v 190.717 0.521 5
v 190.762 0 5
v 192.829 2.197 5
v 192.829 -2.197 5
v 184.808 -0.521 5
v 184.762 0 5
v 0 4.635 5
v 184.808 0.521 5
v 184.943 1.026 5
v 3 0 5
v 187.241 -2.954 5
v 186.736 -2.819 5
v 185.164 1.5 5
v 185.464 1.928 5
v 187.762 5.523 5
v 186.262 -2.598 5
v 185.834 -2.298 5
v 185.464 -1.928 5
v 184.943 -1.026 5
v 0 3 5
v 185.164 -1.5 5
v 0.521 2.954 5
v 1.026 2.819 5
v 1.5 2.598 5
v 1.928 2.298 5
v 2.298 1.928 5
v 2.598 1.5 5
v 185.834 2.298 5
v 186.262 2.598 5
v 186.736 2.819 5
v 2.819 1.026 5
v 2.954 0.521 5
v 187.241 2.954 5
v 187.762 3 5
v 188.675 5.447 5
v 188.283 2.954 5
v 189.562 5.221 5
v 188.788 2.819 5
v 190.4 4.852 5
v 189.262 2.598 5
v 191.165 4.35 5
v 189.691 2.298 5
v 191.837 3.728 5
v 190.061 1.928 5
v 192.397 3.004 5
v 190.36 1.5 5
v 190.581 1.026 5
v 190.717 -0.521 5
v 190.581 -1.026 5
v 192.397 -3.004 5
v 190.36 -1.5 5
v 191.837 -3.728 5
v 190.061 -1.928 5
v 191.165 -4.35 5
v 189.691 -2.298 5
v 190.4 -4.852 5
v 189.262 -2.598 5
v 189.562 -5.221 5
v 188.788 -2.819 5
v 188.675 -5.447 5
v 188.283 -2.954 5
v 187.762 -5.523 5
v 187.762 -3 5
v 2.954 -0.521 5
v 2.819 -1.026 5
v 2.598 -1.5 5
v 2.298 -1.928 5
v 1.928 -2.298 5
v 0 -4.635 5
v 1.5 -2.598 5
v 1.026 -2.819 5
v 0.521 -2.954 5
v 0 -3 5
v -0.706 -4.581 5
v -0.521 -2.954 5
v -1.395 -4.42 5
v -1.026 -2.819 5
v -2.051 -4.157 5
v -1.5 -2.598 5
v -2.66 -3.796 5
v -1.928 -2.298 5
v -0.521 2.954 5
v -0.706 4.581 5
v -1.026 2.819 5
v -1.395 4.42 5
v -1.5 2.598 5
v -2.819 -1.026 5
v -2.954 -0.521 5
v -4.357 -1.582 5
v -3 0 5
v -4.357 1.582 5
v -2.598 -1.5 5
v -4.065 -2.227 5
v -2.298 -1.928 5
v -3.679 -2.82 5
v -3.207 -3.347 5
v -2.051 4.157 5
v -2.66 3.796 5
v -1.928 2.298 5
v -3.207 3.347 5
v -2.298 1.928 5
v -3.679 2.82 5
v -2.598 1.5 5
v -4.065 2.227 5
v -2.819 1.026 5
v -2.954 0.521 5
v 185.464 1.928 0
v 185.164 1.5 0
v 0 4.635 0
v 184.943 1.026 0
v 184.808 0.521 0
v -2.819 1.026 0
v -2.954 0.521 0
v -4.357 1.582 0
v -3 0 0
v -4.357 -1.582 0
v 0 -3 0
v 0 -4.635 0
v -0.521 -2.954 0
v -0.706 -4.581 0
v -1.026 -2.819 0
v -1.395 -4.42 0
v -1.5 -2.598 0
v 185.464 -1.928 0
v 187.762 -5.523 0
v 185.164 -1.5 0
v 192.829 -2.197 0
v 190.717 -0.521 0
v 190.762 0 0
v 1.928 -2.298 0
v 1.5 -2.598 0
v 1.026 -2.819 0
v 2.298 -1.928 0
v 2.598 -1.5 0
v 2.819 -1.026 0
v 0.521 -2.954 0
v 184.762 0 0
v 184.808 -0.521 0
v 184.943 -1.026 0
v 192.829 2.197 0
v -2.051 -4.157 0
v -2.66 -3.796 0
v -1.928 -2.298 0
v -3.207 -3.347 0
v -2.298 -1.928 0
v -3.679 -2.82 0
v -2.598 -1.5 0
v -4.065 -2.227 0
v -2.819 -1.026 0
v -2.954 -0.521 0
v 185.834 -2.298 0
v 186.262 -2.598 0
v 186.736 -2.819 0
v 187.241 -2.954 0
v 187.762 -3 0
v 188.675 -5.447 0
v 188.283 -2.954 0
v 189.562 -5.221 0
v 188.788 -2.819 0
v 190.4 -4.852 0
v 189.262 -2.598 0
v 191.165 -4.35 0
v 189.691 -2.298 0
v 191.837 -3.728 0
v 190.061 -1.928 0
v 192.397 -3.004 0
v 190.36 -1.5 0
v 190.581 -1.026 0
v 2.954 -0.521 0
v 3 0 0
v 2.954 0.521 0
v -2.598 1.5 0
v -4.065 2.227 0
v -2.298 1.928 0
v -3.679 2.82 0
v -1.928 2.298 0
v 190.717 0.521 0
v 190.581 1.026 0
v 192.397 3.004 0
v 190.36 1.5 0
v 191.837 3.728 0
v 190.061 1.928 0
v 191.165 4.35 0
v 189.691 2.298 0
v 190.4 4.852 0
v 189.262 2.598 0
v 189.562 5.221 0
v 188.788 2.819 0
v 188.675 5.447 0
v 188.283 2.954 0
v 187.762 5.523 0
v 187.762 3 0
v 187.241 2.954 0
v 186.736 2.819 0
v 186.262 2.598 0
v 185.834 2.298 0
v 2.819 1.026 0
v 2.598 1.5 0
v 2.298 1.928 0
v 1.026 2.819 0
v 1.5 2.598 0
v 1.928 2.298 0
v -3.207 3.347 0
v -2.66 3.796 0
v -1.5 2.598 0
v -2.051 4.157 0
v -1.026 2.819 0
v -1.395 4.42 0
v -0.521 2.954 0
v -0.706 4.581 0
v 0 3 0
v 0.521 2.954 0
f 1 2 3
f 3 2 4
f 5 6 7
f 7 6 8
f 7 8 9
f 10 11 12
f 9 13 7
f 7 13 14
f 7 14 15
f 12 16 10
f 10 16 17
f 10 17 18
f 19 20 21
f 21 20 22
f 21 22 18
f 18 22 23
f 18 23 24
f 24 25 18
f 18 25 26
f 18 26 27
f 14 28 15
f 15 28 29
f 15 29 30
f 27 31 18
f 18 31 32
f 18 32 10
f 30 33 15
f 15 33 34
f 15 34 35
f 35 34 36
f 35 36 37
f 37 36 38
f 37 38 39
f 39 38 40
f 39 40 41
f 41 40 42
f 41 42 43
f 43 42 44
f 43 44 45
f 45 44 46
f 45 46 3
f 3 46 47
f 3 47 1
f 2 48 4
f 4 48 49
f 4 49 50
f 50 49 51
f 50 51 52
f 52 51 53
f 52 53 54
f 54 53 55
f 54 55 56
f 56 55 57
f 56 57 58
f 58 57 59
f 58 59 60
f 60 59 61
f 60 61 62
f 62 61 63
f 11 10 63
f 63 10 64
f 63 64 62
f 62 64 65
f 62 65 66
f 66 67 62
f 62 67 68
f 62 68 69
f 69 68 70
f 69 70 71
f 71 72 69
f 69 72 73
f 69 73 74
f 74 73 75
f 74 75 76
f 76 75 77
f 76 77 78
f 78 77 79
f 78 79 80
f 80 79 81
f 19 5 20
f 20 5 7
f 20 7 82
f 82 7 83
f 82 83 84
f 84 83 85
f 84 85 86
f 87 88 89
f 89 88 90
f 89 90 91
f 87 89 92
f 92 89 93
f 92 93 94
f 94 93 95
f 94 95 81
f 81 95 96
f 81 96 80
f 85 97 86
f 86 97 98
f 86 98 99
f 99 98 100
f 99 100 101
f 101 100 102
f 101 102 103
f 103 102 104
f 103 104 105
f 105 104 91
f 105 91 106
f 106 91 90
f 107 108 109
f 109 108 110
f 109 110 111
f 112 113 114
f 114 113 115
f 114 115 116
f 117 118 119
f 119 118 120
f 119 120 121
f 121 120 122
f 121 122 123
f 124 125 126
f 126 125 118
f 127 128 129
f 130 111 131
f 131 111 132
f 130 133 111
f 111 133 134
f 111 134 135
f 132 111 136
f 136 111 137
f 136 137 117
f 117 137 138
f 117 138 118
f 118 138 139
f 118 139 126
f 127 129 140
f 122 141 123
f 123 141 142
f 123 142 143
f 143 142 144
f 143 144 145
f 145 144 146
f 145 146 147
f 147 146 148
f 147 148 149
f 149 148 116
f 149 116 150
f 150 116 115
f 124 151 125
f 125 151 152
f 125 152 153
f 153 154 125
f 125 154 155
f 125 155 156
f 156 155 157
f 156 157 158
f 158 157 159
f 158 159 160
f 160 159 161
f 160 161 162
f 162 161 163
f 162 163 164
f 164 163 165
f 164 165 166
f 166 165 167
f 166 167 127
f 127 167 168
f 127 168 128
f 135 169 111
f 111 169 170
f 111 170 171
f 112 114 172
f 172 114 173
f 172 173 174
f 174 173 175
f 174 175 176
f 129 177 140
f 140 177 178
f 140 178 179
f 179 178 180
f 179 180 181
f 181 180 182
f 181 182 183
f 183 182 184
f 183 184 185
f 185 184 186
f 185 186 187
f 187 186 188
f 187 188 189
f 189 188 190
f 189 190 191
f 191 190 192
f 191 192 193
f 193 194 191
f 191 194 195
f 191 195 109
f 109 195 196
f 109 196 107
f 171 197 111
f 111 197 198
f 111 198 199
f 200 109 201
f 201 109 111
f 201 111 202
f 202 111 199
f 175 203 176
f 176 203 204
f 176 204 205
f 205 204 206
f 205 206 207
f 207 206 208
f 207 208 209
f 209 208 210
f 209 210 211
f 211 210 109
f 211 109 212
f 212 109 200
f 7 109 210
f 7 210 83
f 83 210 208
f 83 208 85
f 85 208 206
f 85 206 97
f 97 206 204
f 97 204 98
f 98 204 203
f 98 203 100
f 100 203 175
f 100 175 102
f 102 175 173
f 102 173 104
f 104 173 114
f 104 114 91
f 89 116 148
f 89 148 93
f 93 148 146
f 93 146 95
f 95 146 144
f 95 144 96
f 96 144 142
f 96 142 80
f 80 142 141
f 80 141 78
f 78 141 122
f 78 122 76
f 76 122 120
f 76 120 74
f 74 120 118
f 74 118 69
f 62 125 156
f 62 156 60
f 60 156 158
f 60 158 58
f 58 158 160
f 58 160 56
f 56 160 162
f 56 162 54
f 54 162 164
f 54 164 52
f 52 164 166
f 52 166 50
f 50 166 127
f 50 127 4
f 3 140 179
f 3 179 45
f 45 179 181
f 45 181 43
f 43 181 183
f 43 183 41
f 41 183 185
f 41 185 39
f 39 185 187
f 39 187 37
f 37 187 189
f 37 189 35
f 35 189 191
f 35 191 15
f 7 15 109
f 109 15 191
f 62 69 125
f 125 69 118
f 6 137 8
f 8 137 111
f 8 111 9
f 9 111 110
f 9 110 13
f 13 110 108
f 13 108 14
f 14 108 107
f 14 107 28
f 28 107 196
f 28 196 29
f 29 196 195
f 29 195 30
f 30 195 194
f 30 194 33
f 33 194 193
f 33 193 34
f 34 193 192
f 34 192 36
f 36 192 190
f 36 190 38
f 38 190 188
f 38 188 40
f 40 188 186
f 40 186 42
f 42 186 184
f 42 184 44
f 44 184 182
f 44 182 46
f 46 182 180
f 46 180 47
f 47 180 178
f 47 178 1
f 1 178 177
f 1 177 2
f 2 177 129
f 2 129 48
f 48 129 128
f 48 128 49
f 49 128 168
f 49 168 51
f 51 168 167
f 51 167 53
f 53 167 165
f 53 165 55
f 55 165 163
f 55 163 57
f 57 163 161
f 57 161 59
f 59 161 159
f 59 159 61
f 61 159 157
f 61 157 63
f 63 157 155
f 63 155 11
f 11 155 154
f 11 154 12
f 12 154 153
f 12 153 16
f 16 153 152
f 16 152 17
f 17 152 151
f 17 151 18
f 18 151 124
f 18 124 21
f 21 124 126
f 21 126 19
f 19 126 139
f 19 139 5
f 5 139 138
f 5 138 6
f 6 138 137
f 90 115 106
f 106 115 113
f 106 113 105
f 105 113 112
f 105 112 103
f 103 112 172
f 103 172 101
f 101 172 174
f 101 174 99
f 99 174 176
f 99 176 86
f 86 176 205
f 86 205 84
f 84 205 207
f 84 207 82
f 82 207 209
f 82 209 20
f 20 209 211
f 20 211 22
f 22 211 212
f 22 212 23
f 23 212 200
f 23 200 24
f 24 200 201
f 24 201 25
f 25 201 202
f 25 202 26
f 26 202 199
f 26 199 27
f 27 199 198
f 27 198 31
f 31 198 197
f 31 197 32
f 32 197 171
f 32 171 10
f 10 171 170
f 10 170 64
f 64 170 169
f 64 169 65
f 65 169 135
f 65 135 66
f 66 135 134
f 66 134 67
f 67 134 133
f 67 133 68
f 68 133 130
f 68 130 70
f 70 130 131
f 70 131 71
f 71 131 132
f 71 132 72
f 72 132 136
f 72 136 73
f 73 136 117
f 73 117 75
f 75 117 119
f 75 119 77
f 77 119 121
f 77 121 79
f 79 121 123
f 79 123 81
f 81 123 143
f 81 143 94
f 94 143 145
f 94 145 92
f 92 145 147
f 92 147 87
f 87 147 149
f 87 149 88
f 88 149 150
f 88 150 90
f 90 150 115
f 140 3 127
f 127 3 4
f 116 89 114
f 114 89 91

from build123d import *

# Parameters (mm, degrees)
DODANIE_WYCI_GNI_CIE1_OUTLINE_R = 3.000000079
DODANIE_WYCI_GNI_CIE1_DEPTH     = 5
SZKIC2_W                        = 1.618528634
SZKIC2_H                        = 4.134107934
SZKIC2_H_2                      = 3.371537851
SZKIC2_W_2                      = 0.651830256
SZKIC2_H_3                      = 2.48709631
SZKIC2_H_4                      = 2.564588173
WYTNIJ_WYCI_GNI_CIE3_DEPTH      = 194.428536027


# Read off the part's stored shape, not the designer's step: Dodanie-wyciągnięcie1
with BuildPart() as part:
    # Dodanie-wyciągnięcie1 outline → Dodanie-wyciągnięcie1 (new body)
    with BuildSketch(Plane.XY):
        with BuildLine():
            Line((187.7624, 5.522620658), (0, 4.635188213))
            ThreePointArc((0, 4.635188213), (-4.635188213, 0), (0, -4.635188213))
            Line((0, -4.635188213), (187.7624, -5.522620658))
            ThreePointArc((187.7624, -5.522620658), (193.285020658, 0), (187.7624, 5.522620658))
        make_face()
        Circle(DODANIE_WYCI_GNI_CIE1_OUTLINE_R, mode=Mode.SUBTRACT)
        with Locations((187.7624, 0)):
            Circle(DODANIE_WYCI_GNI_CIE1_OUTLINE_R, mode=Mode.SUBTRACT)
    extrude(amount=DODANIE_WYCI_GNI_CIE1_DEPTH)

    # Szkic2 → Wytnij-wyciągnięcie3 (cut, through all)
    with BuildSketch(Plane.XY):
        with Locations((193.638606269, 2.067053967)):
            Rectangle(SZKIC2_W, SZKIC2_H)
        with Locations((193.638606269, -1.685768926)):
            Rectangle(SZKIC2_W, SZKIC2_H_2)
        with Locations((-4.682734605, 1.243548155)):
            Rectangle(SZKIC2_W_2, SZKIC2_H_3)
        with Locations((-4.682734605, -1.282294087)):
            Rectangle(SZKIC2_W_2, SZKIC2_H_4)
    extrude(amount=WYTNIJ_WYCI_GNI_CIE3_DEPTH, mode=Mode.SUBTRACT)


solid = part.part
